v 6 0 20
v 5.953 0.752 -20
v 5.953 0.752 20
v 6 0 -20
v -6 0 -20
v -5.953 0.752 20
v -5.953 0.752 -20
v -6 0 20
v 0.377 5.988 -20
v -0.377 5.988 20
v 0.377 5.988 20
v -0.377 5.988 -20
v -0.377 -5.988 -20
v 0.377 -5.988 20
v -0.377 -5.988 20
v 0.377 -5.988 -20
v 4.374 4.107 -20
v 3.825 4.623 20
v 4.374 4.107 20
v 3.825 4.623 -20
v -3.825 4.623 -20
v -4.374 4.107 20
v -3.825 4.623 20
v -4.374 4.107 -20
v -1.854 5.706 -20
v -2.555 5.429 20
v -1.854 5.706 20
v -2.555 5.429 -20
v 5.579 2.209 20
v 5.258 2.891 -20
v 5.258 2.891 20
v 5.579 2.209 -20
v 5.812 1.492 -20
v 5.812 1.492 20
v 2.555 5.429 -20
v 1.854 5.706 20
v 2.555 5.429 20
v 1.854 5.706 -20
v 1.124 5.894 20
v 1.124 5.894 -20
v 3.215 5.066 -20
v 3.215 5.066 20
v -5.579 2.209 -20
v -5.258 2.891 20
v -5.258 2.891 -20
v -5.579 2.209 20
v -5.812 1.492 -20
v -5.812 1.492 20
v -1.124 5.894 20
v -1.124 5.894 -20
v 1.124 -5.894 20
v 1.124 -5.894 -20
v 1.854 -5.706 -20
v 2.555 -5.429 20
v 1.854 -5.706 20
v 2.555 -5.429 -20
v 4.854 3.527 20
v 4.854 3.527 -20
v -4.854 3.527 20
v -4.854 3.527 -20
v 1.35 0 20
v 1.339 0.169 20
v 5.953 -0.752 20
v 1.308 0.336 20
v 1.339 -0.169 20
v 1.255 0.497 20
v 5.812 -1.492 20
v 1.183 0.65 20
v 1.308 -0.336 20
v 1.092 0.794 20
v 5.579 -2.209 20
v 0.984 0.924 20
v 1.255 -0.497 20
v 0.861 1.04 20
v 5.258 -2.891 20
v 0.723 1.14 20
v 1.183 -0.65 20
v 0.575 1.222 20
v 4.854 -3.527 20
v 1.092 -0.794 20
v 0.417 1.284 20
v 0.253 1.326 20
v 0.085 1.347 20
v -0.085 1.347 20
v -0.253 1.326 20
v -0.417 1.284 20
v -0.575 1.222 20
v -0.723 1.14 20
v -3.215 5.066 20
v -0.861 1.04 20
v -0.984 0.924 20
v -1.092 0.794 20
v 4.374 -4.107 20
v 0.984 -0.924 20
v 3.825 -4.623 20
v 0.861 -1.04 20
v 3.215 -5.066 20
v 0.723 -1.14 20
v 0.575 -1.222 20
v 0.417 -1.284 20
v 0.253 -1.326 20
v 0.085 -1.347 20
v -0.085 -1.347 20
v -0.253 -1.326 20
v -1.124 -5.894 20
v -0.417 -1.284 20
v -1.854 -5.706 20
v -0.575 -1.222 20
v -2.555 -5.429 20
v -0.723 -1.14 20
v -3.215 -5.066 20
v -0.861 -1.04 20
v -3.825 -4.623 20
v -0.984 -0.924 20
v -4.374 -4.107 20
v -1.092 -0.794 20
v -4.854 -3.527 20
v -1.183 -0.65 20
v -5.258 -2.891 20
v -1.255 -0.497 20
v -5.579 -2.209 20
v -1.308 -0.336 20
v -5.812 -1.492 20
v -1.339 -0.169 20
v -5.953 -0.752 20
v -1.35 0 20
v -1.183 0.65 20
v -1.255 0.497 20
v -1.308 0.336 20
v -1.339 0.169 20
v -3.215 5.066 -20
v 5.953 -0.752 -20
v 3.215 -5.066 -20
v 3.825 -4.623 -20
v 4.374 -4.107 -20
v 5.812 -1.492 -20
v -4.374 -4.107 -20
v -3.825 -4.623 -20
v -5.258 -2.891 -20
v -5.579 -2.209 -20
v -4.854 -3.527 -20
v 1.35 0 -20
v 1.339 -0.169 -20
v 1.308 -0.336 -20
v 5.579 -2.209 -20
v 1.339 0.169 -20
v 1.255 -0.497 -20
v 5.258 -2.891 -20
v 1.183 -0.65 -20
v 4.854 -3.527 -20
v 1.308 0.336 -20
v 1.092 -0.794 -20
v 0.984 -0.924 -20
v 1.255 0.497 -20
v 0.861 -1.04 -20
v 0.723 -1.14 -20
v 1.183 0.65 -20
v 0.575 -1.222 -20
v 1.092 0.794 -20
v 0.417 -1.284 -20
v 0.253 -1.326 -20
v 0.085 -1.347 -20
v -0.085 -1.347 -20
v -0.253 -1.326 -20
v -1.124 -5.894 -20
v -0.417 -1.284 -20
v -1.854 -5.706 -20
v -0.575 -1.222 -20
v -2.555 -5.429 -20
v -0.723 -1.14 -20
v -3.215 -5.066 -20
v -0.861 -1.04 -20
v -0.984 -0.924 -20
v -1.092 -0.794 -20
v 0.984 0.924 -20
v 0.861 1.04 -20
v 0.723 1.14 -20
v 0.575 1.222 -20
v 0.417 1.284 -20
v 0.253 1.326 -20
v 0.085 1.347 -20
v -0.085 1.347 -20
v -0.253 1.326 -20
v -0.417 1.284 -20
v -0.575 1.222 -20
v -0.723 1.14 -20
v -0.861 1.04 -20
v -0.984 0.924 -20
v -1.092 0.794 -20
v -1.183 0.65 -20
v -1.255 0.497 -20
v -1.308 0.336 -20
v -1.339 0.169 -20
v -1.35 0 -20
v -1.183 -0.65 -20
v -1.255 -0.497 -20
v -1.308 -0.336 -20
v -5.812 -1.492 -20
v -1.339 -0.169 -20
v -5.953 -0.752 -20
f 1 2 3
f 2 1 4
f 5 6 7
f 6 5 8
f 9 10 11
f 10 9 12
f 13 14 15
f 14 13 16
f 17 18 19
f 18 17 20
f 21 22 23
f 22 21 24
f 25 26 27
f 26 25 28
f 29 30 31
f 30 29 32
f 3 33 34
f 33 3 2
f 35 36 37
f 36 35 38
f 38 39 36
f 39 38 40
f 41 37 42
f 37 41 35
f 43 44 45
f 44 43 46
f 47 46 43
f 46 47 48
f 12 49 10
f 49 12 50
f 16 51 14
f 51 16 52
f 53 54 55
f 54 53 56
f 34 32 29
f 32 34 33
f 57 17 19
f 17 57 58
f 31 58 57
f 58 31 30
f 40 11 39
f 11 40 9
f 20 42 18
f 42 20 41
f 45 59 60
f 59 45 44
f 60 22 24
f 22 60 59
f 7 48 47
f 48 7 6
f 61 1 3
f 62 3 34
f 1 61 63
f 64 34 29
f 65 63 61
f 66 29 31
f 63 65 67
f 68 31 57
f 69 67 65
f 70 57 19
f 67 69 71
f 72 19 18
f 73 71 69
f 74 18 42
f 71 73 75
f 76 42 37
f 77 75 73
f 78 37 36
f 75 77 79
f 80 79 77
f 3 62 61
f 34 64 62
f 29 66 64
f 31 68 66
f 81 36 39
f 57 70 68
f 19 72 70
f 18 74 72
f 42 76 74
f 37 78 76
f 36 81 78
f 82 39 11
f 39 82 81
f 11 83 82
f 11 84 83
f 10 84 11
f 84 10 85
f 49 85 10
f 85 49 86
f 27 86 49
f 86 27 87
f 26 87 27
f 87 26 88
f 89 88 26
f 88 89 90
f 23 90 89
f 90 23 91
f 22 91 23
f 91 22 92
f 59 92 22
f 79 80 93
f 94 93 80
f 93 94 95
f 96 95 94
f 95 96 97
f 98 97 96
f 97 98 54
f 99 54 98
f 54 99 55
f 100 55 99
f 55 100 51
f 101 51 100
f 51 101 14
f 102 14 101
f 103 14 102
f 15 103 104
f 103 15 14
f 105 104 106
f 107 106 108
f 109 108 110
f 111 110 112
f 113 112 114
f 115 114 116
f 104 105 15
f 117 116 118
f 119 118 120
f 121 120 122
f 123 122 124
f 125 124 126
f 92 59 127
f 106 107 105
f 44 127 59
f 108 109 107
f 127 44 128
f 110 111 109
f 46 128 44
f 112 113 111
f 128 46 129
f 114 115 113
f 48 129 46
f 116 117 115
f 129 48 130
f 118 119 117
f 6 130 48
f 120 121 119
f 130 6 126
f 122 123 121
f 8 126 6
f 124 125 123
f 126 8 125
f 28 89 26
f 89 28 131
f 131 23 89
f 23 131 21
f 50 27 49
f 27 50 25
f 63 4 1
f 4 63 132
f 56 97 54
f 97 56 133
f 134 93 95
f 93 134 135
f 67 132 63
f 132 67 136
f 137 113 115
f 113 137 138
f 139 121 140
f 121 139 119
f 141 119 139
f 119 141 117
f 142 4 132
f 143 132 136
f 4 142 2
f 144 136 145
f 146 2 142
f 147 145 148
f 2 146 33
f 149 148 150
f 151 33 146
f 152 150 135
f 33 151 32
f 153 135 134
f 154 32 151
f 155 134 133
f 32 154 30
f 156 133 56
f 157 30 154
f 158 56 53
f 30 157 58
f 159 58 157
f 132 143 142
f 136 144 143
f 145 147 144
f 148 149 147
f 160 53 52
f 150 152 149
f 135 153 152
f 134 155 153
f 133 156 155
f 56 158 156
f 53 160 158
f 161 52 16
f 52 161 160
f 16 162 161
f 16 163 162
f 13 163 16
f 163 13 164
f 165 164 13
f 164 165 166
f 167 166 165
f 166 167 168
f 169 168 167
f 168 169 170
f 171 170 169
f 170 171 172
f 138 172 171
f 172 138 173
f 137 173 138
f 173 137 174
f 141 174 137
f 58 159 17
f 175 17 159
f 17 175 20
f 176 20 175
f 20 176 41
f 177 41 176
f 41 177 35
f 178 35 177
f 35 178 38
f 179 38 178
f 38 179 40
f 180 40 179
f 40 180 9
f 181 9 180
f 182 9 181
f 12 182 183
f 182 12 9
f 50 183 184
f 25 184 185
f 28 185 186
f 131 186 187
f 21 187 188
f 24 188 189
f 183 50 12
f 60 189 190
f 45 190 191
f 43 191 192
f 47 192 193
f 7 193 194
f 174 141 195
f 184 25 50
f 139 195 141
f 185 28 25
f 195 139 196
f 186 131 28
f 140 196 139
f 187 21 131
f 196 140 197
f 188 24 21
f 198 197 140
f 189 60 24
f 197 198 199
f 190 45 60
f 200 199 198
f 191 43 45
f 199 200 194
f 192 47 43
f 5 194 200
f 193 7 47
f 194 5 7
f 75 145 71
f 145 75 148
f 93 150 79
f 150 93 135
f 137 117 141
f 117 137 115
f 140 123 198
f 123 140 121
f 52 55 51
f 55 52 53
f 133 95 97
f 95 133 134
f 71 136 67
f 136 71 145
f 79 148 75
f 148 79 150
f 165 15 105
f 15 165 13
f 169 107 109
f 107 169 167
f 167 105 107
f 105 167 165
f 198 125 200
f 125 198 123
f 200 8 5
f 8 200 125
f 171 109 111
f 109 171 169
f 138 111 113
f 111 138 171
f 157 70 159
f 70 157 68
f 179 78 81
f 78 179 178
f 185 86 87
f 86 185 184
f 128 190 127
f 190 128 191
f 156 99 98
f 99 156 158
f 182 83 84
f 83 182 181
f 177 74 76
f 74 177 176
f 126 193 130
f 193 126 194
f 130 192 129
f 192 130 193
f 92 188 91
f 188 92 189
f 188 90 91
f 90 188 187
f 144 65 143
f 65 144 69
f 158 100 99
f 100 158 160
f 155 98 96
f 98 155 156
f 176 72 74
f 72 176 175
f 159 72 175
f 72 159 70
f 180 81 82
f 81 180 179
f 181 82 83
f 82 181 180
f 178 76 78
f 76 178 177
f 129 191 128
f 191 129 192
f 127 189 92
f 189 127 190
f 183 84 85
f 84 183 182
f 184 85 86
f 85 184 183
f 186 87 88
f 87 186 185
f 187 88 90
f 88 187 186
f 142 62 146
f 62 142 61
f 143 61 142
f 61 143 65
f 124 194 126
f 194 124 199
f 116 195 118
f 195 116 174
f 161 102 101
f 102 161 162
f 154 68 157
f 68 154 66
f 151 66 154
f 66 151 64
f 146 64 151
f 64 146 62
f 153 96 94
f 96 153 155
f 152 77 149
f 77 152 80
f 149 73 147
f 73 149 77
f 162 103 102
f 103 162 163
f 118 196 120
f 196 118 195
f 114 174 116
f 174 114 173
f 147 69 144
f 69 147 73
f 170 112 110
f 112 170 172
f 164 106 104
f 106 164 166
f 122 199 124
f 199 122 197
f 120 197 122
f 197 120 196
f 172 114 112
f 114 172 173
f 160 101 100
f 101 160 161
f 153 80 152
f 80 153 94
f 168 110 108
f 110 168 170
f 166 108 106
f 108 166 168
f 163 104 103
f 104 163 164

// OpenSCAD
$fn = 50;


difference() {
	union() {
		translate(v = [0, 0, -20.0000000000]) {
			cylinder(h = 40, r = 6.0000000000);
		}
	}
	union() {
		translate(v = [0, 0, -100.0000000000]) {
			cylinder(h = 200, r = 1.3500000000);
		}
	}
}
